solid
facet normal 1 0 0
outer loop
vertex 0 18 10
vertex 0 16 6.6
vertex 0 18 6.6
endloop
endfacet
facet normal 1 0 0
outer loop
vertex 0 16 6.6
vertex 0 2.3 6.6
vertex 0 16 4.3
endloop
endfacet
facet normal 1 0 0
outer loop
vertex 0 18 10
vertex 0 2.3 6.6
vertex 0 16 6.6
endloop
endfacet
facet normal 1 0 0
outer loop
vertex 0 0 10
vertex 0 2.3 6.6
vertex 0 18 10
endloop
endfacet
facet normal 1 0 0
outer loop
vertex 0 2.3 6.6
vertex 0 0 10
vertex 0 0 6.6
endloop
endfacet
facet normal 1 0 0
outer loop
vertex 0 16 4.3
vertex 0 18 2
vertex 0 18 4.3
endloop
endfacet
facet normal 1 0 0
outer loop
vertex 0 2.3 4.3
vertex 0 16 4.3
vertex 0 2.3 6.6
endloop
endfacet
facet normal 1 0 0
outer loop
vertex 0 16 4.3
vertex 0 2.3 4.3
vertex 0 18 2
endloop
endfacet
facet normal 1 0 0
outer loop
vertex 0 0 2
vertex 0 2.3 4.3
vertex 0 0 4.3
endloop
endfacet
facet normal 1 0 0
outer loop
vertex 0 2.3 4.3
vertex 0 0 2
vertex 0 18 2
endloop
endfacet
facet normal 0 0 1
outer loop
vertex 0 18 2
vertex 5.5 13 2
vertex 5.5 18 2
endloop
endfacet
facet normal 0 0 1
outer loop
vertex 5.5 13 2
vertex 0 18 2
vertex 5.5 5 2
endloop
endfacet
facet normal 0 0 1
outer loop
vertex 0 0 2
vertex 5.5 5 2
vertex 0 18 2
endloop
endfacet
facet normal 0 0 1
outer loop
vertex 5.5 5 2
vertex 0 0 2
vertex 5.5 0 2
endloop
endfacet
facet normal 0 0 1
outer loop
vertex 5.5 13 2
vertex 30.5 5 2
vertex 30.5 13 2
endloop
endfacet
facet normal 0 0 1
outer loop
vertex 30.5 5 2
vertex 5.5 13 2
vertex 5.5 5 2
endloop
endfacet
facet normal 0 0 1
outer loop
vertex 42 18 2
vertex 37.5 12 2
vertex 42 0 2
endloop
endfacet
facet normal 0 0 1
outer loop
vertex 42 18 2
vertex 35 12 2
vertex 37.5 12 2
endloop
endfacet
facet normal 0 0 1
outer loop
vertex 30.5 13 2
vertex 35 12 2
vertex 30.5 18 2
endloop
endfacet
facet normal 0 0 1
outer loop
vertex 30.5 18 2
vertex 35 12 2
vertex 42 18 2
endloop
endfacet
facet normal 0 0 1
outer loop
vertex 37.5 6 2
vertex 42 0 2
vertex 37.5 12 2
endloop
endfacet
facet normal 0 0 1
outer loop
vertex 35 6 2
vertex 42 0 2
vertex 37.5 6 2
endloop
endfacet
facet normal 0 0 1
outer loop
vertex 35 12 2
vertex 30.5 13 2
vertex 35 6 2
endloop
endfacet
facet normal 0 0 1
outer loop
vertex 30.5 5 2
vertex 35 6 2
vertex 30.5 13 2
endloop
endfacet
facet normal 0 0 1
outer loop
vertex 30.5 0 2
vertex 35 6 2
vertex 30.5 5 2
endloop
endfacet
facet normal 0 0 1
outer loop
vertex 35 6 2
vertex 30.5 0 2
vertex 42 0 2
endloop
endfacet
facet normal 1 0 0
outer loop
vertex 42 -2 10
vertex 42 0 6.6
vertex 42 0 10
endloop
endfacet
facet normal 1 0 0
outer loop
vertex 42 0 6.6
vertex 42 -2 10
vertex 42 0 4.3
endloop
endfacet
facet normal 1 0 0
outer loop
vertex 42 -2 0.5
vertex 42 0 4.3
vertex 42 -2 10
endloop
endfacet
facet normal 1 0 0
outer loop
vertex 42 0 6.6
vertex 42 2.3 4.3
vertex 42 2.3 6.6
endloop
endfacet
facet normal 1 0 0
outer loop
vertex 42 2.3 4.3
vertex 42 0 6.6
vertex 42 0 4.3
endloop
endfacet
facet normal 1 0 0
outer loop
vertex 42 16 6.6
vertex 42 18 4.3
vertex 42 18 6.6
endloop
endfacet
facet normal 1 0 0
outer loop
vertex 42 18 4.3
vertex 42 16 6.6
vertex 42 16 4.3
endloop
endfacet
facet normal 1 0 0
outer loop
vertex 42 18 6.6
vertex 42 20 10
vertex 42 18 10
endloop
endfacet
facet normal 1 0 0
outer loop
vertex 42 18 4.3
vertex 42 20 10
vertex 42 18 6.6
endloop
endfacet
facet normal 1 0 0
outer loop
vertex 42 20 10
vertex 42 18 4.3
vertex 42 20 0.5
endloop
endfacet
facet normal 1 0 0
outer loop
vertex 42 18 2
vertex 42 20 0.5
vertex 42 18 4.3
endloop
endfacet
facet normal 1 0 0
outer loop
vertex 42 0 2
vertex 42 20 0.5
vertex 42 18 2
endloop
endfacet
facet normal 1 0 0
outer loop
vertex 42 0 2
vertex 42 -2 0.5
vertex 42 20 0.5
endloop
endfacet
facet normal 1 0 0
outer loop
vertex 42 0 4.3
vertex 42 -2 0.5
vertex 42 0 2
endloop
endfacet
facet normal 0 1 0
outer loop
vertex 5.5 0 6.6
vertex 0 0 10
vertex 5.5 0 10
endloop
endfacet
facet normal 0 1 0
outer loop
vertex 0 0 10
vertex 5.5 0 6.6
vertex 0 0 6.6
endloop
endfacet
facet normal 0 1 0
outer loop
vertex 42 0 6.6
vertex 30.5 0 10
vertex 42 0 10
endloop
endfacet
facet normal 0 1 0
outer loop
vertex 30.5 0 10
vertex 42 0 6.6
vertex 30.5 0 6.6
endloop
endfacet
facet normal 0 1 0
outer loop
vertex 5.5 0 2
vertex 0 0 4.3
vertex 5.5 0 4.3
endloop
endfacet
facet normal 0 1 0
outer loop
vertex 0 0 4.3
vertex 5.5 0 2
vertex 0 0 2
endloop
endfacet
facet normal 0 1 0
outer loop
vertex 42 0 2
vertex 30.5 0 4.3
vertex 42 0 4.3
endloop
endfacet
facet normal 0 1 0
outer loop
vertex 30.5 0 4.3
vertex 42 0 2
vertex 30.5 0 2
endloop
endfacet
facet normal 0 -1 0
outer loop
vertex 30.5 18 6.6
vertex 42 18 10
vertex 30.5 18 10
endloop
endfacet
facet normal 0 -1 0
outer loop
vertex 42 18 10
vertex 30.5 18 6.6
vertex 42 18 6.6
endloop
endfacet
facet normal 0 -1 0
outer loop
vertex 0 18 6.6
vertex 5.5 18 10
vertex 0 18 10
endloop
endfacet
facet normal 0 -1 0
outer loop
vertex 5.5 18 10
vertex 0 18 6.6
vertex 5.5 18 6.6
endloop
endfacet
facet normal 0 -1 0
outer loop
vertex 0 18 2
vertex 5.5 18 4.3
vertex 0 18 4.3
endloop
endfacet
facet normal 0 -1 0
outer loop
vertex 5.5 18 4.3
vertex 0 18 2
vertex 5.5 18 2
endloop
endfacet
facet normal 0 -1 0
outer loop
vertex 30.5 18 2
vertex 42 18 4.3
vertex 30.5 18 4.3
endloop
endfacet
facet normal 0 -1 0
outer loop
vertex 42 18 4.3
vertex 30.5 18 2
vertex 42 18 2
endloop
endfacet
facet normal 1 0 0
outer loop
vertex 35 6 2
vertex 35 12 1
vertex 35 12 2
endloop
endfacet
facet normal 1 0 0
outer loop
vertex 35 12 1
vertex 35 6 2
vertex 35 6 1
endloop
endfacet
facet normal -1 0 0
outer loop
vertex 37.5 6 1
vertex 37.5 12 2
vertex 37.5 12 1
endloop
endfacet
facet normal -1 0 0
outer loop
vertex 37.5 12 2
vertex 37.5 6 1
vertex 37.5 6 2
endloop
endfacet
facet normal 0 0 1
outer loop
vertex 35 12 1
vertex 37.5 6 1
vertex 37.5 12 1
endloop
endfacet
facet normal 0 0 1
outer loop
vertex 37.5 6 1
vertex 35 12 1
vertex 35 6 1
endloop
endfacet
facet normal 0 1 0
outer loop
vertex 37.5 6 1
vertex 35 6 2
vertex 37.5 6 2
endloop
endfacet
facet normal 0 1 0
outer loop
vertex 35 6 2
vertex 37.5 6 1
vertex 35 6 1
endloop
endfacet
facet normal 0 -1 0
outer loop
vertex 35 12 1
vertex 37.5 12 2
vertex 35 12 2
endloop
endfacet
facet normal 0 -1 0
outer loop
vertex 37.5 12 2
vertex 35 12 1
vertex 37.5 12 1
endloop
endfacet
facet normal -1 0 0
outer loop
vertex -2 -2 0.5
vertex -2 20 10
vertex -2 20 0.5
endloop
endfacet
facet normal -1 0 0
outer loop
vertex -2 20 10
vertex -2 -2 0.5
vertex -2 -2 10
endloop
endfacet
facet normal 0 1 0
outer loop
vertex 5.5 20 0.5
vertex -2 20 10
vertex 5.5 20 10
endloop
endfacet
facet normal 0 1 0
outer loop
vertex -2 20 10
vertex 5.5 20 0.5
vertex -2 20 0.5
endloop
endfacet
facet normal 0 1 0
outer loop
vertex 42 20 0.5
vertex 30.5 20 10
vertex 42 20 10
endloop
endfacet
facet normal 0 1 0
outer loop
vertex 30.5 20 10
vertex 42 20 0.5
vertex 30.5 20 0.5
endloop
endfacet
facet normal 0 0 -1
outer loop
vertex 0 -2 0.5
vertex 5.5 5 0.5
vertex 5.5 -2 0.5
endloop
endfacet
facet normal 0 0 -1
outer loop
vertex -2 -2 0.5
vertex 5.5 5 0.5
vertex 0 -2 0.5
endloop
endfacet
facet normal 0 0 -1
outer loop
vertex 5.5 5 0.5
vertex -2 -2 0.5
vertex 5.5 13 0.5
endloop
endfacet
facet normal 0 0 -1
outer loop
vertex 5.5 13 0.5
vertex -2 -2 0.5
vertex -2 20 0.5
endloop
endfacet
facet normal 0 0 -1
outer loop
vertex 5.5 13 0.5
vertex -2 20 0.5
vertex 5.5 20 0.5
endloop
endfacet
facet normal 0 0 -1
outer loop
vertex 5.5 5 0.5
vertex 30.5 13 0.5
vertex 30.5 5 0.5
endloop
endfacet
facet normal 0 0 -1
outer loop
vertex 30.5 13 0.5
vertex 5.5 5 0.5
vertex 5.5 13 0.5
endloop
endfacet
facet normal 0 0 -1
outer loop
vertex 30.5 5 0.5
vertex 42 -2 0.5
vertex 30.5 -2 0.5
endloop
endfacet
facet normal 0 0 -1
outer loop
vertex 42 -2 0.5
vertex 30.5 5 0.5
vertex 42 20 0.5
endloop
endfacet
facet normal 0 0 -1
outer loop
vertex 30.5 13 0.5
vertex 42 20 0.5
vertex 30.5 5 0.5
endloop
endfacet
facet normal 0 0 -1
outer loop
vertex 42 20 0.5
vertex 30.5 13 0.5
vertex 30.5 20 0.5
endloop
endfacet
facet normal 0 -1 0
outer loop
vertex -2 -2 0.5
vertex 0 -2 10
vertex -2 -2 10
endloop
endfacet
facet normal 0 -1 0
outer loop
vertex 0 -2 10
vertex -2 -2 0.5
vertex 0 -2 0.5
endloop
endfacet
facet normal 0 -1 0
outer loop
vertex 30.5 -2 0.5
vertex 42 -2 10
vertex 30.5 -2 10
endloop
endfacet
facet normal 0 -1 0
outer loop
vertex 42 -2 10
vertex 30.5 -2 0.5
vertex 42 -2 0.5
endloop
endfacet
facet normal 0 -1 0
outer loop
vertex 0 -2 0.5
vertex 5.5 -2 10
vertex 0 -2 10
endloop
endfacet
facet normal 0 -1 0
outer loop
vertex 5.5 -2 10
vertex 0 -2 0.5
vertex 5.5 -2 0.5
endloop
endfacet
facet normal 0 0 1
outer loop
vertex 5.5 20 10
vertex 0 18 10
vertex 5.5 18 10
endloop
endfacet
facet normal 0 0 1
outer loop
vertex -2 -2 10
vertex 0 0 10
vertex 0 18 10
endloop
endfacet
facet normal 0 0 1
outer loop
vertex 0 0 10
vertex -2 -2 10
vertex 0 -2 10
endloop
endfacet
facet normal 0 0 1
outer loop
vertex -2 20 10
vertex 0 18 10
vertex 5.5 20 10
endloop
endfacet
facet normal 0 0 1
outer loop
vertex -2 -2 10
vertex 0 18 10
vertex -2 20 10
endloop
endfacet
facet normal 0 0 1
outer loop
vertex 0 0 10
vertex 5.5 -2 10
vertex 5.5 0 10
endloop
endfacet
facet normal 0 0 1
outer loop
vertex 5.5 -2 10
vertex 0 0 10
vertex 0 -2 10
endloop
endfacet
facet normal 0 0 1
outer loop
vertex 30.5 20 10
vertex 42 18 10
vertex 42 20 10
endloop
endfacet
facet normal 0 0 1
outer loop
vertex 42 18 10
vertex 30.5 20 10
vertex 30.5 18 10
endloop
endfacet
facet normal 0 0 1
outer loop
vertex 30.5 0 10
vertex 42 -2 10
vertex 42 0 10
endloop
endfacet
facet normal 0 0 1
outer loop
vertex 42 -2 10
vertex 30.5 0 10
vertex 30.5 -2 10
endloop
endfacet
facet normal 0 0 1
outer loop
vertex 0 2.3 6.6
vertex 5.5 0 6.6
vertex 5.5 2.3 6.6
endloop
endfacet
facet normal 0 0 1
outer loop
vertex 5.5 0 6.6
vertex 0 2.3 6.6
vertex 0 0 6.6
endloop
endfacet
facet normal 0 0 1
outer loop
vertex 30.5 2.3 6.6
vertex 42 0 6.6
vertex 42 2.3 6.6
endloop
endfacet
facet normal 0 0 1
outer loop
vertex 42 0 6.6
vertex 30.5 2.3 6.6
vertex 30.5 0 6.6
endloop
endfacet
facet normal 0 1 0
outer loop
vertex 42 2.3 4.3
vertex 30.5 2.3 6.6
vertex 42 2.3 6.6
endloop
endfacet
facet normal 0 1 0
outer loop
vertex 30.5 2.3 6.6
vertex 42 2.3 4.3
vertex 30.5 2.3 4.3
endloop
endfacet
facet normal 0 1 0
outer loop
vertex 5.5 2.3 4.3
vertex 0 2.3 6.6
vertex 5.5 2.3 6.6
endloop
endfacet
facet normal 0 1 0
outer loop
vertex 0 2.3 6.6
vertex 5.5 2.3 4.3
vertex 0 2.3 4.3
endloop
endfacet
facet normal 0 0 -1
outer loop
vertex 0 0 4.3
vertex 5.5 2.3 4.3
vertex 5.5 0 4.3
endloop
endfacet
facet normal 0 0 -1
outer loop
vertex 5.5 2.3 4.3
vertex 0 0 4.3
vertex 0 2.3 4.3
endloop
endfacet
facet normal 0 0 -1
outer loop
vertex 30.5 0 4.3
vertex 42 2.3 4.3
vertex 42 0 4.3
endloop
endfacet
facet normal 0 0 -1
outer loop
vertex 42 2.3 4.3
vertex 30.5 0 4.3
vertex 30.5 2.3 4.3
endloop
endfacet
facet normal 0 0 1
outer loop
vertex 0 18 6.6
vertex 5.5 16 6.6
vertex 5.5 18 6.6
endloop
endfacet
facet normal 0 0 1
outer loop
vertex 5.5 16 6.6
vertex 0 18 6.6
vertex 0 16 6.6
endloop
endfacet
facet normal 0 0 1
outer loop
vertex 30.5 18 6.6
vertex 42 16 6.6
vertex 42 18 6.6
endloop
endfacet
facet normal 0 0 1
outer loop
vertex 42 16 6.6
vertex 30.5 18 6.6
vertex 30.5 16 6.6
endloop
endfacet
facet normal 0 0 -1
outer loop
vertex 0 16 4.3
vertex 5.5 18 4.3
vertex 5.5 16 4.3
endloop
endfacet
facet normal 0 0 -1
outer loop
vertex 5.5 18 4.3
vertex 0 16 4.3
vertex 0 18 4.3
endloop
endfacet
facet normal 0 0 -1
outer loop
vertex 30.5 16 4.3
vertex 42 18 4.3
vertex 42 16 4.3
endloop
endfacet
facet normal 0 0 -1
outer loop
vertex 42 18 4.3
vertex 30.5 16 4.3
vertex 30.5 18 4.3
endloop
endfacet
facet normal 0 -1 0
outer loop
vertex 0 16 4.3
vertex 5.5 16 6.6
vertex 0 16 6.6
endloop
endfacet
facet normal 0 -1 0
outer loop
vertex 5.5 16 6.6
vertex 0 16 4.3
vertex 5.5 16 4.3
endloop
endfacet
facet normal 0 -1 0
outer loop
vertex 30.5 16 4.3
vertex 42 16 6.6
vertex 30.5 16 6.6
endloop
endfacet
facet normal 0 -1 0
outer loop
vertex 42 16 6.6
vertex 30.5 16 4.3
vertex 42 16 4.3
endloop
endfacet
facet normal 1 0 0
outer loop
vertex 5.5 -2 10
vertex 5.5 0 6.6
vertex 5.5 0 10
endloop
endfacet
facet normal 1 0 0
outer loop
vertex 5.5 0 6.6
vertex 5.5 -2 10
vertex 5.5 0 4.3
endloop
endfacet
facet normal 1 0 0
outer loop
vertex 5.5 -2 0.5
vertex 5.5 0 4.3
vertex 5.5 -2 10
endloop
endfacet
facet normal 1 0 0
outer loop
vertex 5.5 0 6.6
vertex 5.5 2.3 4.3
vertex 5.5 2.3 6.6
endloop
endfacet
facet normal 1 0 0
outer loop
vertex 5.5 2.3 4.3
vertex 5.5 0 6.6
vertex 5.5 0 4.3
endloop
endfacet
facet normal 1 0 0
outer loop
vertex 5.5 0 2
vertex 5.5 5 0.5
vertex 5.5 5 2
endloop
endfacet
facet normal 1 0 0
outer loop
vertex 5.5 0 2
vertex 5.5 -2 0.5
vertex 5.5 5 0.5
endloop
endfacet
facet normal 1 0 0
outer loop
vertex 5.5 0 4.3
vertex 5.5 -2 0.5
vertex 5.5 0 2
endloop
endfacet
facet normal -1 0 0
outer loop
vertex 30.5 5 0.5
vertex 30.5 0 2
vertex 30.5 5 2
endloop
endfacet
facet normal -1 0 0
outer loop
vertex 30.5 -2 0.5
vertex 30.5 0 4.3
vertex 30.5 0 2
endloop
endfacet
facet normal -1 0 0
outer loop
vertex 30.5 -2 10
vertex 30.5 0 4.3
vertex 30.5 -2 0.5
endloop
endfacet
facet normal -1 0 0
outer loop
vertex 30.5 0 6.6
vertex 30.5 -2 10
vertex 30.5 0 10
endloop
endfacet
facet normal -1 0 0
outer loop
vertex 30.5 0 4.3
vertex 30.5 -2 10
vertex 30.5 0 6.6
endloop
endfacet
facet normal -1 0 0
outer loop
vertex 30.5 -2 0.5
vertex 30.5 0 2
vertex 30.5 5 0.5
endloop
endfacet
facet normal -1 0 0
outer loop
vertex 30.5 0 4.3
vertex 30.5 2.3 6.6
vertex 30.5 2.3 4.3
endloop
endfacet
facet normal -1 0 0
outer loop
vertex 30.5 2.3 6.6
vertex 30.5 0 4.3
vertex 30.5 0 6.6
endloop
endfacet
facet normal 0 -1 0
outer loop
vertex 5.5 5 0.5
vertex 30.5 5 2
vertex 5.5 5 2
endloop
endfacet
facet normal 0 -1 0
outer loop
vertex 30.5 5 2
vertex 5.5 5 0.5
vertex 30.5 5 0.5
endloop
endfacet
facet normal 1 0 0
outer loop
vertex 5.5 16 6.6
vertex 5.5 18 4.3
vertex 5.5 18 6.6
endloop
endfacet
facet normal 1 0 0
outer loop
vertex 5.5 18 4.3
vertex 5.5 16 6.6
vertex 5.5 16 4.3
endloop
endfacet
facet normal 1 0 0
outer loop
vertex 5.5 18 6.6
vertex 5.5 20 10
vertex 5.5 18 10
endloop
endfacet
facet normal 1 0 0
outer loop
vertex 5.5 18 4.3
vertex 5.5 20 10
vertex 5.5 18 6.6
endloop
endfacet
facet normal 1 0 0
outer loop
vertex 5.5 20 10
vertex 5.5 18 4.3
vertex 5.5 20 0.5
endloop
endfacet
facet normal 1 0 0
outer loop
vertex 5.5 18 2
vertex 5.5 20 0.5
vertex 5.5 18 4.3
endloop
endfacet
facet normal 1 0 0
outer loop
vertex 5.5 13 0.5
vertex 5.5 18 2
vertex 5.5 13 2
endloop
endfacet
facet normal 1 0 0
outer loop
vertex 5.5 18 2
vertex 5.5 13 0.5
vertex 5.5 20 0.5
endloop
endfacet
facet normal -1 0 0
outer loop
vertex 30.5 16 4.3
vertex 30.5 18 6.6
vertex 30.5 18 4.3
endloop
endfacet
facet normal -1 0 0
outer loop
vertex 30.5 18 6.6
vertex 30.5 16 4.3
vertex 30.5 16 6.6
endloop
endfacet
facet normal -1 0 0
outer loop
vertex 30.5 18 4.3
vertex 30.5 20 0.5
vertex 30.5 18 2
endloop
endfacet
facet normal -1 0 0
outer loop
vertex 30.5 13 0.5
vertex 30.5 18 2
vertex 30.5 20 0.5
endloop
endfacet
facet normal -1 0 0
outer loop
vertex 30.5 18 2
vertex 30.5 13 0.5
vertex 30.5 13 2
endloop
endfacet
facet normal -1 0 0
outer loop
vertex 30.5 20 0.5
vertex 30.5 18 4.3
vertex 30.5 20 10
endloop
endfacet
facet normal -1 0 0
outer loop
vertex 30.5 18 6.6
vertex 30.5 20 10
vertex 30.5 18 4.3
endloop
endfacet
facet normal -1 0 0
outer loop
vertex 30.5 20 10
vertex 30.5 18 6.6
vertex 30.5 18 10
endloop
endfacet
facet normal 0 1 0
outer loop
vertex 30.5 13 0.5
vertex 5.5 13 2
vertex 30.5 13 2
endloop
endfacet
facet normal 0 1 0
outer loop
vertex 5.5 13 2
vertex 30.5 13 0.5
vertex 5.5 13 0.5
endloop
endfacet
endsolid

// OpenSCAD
// Download the GoPro connector file at http://www.thingiverse.com/thing:62800/zip and put ../files/gopro_mounts_mooncactus.scad in the same folder as this file
use <gopro_mounts_mooncactus.scad>
 
wall_thickness=2;
width = 18;
length = 42;
//temporary cutaways
difference() {
    union(){
        // gopro
        xshift=0;
        yshift=width/2;
        zshift=1;
        translate([xshift+7,yshift,-zshift-10.5]) rotate([90,0,0]) gopro_connector("triple");
        // taper from the connector to the base plate
        hull() {
            // goproconnector plate receiver
            translate([xshift+7-7.35,yshift-7.35,-zshift-10.5+10.75]) cube([14.75,14.75,0.5]);
            // base plate receiver
            translate([-wall_thickness,-wall_thickness,0]) cube([length+wall_thickness,width+2*wall_thickness,0.5]);
        }
        // base plate
        difference(){
            cube([length,width,wall_thickness]);
            // notch for latch
            latch_width = 6;
            hole_depth = 1;
            from_end=7;
            notch_length=2.5;
            #translate([length-from_end,(width/2)-(latch_width/2),wall_thickness-hole_depth]) cube([notch_length,latch_width,2*hole_depth]);
        }
        // side walls
        wall_height=10;
        rotate([90,00,0]) cube([length,wall_height,wall_thickness]);
        translate([0, width+wall_thickness, 0]) rotate([90,0,0]) cube([length,wall_height,wall_thickness]);
        // lips
        lip_thickness=2.3;
        lip_depth=2.3;
        shift=2.3;
        translate([0,0,wall_thickness+shift]) cube([length,lip_depth,lip_thickness]);
        translate([0,width-wall_thickness,wall_thickness+shift]) cube([length,lip_depth,lip_thickness]);
        // front wall
        translate([-wall_thickness,-wall_thickness,0]) cube([wall_thickness,width+2*wall_thickness,wall_height]);
    }
    translate([0,0,-12]) cube([100,50,25], center=true);
    translate([18,-5,-12]) cube([25,20,50], center=true);
    translate([18,23,-12]) cube([25,20,50], center=true);
}
